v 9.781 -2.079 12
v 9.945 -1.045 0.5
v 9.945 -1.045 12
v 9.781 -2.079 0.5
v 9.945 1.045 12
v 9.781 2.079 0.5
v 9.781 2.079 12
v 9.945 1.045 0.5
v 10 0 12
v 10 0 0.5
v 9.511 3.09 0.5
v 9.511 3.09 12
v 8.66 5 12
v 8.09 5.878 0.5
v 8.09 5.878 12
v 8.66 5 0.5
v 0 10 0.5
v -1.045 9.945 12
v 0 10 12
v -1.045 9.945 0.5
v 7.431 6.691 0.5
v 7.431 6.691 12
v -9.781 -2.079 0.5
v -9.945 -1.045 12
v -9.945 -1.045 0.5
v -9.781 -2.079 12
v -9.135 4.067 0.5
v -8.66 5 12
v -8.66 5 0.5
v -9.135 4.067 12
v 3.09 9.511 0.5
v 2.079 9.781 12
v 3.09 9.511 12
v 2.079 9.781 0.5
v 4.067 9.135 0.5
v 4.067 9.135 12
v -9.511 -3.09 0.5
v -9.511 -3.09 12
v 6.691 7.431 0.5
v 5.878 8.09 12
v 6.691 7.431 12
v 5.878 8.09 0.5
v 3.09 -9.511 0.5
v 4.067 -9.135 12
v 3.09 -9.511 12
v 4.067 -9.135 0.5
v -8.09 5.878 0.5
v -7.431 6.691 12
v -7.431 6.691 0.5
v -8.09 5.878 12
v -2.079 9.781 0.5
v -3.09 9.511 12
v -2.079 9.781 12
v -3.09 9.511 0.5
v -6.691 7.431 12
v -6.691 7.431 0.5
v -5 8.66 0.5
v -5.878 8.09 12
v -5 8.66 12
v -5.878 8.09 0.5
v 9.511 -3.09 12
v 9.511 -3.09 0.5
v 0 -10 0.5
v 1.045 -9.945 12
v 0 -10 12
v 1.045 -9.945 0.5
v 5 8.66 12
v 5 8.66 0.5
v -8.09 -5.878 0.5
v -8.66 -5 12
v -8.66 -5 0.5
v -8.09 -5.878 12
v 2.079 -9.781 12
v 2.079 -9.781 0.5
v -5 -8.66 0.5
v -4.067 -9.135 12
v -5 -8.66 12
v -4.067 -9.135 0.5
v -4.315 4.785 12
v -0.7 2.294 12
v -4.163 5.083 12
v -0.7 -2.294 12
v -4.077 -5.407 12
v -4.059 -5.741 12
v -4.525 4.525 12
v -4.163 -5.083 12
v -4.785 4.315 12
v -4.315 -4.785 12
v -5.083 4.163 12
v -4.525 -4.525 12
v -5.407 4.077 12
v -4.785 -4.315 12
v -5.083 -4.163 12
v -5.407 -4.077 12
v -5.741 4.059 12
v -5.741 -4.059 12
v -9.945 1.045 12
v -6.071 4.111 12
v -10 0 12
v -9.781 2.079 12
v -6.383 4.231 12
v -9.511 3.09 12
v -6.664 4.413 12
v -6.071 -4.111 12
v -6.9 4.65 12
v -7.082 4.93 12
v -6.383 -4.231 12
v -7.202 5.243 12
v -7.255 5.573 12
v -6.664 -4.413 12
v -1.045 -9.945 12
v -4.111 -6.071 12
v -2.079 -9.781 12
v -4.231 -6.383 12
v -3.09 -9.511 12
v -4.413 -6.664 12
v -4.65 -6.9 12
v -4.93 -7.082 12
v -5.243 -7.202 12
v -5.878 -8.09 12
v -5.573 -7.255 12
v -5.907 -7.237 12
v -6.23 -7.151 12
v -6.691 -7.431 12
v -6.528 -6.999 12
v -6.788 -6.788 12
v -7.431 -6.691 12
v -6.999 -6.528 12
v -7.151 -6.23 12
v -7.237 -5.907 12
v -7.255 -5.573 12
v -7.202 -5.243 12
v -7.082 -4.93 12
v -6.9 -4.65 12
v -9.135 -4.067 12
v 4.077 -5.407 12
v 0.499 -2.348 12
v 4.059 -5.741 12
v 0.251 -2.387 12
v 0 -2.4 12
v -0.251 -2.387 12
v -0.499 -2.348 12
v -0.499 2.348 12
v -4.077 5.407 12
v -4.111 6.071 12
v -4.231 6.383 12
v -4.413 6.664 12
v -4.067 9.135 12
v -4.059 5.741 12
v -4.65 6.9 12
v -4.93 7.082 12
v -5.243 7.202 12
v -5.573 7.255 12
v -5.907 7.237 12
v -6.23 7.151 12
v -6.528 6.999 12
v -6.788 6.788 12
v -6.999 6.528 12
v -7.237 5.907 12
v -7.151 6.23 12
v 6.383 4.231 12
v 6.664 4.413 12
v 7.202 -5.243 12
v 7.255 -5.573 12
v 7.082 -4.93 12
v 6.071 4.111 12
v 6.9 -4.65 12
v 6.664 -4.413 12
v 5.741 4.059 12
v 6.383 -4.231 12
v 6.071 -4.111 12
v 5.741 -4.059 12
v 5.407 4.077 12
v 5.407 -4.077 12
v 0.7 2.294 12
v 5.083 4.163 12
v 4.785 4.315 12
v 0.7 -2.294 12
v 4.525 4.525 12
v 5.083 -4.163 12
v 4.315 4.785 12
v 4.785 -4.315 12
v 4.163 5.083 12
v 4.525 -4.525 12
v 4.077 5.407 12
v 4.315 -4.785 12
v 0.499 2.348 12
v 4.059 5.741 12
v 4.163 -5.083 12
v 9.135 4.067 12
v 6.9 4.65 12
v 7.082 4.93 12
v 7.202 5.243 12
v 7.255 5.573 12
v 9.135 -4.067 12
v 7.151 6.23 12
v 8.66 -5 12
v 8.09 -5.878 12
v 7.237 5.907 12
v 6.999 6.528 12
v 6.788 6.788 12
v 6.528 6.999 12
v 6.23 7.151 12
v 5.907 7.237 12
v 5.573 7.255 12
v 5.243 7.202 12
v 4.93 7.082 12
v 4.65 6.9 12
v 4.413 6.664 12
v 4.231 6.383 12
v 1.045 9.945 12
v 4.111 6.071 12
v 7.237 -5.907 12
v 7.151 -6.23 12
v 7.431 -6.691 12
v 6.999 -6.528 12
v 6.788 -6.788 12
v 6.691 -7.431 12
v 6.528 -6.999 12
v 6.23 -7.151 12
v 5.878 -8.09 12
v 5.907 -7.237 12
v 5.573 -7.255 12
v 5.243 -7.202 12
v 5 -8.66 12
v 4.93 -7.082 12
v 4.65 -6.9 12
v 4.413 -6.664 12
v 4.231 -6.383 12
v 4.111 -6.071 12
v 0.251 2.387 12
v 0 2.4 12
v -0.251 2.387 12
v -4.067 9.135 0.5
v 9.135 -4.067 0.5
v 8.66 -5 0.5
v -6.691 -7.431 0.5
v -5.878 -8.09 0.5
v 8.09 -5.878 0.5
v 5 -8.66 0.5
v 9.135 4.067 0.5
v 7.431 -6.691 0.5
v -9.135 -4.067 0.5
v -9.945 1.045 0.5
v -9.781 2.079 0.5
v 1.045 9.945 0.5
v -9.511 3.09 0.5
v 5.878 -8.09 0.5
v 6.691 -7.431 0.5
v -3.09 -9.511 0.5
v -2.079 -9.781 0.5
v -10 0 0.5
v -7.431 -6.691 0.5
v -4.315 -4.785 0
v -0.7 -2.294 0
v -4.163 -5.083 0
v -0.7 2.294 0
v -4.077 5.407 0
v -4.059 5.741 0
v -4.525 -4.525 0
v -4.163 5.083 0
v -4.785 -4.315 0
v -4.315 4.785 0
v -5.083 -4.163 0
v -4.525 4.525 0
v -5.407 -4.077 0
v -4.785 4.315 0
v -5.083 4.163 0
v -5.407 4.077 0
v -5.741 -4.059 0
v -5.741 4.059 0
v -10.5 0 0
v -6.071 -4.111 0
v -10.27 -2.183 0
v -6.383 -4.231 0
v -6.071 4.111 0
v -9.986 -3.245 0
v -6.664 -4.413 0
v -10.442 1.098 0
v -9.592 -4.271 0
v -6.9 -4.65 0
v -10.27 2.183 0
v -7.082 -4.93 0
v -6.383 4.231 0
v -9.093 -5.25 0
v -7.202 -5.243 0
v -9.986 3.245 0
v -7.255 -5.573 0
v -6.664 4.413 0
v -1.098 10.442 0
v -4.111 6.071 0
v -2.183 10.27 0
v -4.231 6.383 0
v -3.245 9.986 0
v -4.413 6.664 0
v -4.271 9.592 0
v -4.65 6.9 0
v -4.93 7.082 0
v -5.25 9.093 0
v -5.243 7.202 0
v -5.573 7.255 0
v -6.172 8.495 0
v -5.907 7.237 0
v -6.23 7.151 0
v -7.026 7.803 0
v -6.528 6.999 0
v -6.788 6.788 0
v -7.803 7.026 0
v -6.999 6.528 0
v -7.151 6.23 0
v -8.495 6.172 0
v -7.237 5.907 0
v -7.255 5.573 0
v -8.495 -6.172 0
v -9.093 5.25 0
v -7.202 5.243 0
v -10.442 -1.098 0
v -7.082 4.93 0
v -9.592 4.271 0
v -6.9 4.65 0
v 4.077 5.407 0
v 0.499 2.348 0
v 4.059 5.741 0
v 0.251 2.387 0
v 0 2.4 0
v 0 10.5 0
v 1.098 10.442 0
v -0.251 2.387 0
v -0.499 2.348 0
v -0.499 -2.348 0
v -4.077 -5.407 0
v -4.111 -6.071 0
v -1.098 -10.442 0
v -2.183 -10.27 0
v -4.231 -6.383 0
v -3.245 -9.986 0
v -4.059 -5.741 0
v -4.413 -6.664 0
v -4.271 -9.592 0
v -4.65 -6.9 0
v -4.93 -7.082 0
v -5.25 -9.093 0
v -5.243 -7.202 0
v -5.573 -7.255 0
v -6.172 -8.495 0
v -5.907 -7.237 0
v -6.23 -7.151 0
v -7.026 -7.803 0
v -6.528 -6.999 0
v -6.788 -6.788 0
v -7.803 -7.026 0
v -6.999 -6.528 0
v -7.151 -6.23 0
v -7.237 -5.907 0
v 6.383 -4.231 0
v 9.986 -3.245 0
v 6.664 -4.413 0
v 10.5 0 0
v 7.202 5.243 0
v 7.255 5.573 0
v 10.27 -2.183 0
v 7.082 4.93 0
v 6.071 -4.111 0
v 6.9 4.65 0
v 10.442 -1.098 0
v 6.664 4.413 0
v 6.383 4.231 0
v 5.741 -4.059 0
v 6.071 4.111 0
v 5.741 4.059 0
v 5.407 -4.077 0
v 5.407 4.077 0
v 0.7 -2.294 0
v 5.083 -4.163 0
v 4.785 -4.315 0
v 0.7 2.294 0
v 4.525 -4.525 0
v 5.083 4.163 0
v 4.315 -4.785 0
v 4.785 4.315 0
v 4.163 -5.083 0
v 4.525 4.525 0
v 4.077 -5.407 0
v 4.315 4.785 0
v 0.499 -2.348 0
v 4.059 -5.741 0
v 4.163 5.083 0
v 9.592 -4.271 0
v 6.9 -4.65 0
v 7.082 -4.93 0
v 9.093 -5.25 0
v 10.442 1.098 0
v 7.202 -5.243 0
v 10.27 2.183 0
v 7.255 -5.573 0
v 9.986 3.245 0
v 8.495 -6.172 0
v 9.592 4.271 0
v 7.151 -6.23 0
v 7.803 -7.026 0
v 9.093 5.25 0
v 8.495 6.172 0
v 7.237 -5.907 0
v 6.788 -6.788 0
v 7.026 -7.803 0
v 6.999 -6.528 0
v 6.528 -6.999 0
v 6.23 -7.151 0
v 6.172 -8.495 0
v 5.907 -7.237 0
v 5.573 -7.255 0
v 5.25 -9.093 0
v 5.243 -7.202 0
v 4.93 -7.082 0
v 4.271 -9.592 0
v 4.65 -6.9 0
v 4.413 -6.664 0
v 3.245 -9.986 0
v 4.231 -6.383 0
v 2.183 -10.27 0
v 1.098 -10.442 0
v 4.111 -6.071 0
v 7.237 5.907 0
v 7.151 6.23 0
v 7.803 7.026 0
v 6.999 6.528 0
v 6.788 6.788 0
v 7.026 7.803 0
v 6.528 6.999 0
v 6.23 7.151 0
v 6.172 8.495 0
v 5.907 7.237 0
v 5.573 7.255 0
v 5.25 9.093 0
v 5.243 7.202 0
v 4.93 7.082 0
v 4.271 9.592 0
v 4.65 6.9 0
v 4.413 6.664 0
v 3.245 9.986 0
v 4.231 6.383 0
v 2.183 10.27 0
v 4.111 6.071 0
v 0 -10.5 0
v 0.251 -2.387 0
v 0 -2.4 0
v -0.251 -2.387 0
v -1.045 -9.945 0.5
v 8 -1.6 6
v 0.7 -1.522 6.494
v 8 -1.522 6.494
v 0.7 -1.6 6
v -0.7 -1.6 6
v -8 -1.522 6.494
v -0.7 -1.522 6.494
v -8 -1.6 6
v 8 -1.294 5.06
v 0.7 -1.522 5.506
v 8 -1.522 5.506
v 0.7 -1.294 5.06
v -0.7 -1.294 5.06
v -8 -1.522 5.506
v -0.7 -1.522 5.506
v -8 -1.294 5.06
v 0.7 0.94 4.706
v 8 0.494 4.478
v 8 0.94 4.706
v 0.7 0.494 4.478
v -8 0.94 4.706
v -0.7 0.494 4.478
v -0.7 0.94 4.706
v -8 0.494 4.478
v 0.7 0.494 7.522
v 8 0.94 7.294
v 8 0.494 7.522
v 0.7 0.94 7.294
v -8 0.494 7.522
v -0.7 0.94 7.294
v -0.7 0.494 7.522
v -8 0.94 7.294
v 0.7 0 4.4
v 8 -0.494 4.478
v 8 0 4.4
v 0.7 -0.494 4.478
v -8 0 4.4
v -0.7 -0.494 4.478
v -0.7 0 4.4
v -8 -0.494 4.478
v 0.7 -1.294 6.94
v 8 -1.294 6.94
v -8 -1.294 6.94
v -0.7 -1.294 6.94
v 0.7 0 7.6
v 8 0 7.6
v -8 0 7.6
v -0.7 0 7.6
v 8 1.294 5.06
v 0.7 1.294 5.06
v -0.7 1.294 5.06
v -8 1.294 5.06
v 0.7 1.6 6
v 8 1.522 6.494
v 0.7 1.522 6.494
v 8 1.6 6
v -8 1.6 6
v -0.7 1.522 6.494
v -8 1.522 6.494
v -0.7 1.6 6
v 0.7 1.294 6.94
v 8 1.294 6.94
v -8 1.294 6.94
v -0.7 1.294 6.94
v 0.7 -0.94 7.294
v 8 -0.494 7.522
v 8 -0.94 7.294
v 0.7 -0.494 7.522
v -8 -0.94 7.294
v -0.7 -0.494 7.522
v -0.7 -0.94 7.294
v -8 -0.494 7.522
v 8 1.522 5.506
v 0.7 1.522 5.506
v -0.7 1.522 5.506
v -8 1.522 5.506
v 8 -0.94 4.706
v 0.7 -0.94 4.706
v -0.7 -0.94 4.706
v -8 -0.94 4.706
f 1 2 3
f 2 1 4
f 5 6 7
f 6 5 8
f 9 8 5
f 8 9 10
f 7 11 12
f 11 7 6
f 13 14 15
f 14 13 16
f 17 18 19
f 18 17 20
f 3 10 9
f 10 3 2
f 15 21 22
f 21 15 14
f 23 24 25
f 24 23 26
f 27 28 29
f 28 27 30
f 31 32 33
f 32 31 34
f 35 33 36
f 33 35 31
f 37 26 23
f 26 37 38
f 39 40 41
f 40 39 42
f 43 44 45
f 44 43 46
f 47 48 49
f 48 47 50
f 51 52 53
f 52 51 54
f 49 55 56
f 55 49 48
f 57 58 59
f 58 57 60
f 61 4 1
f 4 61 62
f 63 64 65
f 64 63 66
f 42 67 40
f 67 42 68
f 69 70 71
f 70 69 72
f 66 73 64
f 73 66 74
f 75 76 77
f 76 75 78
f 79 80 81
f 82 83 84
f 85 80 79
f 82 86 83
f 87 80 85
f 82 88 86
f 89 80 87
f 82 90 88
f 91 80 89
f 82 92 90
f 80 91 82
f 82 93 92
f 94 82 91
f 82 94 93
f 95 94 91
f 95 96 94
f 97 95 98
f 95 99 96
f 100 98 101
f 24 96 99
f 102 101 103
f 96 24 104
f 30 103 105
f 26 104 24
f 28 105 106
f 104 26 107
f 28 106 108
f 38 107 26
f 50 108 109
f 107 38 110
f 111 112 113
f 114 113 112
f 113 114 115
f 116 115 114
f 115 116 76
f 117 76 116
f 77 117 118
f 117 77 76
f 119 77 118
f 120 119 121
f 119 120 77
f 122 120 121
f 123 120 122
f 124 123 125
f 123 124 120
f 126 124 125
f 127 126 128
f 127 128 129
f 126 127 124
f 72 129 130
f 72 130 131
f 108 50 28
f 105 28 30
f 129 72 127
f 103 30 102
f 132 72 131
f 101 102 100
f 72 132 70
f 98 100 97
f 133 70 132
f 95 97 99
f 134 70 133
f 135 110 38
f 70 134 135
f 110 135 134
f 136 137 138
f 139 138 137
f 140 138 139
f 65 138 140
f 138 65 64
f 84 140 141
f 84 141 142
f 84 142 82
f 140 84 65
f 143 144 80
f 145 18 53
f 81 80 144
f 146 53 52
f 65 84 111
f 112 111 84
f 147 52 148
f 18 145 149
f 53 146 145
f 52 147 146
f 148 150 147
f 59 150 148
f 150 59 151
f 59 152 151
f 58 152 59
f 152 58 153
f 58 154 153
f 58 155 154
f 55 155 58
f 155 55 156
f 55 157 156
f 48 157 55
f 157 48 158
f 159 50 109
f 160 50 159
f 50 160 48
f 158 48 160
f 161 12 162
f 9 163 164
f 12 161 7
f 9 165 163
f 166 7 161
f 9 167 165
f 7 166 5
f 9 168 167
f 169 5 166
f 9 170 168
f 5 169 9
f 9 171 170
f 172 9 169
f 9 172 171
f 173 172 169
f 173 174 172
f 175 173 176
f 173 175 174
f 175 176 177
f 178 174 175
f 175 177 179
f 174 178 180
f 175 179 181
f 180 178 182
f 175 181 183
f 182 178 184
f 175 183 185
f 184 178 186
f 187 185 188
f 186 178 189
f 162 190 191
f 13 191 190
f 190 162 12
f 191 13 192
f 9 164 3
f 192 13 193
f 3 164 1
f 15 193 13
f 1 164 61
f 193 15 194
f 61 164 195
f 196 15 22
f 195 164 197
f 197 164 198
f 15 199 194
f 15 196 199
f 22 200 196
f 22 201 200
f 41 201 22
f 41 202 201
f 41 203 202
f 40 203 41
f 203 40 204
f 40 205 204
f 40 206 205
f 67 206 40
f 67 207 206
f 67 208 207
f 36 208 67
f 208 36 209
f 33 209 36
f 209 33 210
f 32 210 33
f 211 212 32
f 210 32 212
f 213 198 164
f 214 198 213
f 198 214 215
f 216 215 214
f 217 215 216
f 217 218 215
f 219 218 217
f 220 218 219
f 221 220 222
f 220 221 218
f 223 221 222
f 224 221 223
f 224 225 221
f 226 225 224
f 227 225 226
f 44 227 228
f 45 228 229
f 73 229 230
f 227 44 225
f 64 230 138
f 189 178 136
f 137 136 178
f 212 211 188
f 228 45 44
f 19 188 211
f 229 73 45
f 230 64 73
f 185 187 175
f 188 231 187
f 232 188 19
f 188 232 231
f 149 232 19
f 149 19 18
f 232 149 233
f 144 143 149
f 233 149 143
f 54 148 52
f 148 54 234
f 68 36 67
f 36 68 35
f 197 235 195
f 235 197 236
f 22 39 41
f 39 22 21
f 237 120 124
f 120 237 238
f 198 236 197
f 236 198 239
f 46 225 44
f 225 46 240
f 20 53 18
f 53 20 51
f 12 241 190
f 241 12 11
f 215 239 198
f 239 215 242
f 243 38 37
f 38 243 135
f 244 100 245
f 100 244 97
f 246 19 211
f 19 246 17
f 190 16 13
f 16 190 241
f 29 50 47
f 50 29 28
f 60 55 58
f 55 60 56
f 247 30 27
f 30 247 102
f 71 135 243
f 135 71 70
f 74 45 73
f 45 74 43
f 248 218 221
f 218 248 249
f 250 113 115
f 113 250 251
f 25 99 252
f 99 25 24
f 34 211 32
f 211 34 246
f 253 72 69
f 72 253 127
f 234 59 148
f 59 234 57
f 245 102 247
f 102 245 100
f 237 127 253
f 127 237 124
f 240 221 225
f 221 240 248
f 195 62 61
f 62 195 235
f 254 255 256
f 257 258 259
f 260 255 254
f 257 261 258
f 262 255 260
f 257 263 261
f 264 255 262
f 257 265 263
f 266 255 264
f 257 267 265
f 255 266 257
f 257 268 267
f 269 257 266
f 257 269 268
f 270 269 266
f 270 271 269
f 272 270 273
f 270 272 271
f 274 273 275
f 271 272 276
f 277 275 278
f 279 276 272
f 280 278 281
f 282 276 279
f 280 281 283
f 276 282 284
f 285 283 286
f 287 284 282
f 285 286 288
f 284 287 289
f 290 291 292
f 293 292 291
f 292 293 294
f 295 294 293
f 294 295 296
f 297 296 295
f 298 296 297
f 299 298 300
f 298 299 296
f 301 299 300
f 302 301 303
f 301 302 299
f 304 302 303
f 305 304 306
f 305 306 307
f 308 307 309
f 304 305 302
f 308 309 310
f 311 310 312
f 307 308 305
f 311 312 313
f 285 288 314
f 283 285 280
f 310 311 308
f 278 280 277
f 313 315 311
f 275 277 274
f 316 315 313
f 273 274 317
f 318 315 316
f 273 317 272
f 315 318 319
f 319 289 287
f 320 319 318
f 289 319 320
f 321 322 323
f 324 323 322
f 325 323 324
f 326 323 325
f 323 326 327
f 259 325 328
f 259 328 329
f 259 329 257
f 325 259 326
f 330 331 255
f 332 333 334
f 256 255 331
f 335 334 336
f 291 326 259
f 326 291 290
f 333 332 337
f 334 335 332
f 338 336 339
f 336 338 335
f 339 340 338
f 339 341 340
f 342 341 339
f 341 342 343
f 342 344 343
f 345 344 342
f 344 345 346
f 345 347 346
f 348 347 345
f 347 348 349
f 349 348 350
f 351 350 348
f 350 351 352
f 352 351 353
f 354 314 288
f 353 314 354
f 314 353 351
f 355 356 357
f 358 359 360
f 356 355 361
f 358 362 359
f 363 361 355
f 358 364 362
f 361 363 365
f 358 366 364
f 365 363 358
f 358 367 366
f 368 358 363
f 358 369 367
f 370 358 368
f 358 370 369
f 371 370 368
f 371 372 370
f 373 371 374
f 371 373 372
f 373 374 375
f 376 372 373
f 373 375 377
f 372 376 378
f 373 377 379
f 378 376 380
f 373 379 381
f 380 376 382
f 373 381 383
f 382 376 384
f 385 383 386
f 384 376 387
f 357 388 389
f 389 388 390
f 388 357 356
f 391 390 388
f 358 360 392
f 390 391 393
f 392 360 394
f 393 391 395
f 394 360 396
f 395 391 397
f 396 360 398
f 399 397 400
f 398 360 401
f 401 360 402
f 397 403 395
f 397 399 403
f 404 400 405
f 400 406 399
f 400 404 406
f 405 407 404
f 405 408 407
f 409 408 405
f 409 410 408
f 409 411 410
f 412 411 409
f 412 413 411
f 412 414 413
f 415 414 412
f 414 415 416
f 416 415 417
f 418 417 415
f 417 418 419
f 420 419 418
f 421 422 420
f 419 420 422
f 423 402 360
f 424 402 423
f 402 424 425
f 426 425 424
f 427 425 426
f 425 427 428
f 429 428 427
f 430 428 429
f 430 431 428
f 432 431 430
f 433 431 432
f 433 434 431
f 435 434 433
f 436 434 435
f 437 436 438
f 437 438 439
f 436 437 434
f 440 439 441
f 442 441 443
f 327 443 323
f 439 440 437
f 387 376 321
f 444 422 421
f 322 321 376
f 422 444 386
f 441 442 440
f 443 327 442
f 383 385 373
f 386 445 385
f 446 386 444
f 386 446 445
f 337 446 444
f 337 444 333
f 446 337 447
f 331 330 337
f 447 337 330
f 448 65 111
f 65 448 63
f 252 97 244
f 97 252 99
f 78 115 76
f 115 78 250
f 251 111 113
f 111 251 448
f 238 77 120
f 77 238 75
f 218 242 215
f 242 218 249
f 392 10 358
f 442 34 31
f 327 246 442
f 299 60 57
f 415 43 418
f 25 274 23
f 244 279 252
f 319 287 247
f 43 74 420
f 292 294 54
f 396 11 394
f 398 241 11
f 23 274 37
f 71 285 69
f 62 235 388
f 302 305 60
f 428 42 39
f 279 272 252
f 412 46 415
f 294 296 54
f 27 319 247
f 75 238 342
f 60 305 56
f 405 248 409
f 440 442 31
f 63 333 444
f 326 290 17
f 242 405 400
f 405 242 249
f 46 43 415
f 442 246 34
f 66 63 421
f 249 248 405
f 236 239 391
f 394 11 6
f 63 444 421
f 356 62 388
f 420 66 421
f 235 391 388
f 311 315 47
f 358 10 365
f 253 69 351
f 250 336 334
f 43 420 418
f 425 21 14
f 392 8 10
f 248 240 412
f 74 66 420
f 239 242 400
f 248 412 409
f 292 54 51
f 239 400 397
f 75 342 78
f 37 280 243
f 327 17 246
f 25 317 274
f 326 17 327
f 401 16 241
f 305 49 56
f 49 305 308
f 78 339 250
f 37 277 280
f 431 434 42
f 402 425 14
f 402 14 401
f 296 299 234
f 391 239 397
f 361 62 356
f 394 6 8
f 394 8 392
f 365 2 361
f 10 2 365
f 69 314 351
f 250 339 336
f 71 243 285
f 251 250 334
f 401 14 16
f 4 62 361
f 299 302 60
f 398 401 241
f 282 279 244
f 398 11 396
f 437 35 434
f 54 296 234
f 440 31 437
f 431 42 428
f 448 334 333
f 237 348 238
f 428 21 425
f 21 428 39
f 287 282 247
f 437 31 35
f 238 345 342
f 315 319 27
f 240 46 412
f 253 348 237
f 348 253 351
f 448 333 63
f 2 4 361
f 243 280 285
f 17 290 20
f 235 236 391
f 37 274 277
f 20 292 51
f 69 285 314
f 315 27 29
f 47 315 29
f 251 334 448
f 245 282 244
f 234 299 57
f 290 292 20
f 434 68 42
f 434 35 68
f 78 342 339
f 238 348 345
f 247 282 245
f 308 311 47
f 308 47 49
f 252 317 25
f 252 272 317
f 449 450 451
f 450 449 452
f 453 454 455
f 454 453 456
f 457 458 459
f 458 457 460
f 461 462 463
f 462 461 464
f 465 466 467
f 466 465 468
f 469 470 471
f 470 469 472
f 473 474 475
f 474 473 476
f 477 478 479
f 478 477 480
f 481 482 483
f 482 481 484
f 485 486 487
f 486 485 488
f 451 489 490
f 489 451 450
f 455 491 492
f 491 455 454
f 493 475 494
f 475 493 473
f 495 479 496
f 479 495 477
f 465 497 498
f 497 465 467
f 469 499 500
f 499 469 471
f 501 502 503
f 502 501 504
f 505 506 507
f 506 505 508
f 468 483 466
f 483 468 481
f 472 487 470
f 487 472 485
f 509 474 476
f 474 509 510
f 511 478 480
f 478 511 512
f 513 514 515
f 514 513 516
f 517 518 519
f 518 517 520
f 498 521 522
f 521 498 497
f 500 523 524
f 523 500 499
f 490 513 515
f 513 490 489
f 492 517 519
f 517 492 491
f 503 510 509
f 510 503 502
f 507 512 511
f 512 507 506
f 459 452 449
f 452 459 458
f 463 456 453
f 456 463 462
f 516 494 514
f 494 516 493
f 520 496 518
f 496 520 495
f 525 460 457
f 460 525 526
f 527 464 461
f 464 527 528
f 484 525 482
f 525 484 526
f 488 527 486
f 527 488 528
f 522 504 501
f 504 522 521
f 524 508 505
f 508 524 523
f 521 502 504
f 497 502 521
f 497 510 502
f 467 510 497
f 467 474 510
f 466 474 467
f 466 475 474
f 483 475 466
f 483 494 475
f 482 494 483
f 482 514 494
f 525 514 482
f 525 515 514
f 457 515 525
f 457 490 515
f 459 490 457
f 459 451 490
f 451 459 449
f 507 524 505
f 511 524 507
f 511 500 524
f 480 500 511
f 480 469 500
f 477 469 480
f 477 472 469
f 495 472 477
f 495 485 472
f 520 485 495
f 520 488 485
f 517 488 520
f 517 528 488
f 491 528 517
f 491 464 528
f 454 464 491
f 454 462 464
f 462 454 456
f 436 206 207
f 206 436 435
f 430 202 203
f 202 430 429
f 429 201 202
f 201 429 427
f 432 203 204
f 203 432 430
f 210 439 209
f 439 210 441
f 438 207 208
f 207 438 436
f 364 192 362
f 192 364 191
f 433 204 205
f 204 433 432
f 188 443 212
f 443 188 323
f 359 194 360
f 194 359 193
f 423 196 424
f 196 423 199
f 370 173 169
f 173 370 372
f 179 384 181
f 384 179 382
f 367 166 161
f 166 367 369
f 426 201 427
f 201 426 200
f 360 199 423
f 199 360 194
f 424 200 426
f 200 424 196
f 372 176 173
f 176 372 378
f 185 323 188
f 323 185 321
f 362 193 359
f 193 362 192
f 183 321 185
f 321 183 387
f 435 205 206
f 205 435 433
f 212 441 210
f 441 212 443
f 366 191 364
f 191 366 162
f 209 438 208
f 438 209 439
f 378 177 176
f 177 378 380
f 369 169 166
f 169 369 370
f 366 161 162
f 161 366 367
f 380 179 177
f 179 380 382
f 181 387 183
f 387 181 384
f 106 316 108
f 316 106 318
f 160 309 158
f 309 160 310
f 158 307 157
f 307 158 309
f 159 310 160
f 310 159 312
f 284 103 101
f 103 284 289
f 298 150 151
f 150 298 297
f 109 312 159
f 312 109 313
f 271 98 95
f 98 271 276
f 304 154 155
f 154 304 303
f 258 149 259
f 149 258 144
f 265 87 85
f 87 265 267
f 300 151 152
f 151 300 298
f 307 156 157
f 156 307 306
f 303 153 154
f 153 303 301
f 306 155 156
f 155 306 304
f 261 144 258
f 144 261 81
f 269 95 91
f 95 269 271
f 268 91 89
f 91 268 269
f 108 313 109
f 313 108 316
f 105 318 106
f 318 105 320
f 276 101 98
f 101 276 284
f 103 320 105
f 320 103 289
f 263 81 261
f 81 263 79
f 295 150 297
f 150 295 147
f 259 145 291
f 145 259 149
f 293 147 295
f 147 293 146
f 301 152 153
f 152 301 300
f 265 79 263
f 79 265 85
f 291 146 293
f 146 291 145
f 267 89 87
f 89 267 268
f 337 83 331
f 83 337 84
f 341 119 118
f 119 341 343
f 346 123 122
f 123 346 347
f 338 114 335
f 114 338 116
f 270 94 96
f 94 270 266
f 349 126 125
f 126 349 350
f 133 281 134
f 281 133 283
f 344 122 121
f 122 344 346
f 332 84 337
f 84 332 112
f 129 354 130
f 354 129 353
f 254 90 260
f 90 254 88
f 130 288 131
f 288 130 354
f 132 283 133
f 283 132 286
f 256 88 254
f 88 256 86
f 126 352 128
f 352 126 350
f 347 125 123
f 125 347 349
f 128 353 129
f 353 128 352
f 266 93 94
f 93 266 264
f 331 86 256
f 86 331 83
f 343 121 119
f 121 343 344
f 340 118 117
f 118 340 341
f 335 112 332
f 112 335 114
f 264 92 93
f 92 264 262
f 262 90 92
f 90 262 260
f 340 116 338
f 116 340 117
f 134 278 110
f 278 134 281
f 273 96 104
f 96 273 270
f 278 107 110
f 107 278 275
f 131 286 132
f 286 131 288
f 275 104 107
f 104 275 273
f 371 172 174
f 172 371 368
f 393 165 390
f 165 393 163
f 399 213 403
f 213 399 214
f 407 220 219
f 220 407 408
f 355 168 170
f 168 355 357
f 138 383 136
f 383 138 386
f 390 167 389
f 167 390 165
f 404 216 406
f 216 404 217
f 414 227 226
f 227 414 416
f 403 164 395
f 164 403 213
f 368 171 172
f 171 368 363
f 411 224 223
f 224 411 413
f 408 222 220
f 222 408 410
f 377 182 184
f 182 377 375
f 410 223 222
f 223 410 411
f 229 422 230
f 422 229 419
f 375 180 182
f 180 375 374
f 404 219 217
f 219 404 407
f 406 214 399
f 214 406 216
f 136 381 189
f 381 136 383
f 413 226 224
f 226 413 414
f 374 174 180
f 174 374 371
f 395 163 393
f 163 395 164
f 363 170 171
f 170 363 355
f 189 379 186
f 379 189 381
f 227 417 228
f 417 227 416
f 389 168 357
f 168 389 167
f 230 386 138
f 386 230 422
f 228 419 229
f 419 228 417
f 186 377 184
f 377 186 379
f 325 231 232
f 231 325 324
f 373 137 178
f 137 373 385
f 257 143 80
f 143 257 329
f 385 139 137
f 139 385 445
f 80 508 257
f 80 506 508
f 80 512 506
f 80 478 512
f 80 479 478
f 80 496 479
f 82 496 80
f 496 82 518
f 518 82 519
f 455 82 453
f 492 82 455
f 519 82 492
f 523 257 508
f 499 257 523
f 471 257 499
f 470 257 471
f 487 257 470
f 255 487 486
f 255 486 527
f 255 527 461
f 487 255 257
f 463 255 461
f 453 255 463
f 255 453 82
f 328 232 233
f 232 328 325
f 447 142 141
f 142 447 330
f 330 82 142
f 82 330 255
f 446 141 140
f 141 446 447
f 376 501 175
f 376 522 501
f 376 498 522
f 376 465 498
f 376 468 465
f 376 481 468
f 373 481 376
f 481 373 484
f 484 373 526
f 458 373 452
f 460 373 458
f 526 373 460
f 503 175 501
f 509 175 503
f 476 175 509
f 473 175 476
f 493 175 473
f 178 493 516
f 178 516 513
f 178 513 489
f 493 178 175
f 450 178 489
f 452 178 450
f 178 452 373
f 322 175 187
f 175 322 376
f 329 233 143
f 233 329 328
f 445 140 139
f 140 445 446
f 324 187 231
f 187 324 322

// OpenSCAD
/*
   Coupling Hub for NEMA 17 to Spool Connection

   This hub connects the NEMA 17 motor shaft (5mm D-shaft) to the
   laser-cut spool. It's designed to be 3D printed in PLA or PETG.

   Features:
   - 5mm D-shaft center hole (matches NEMA 17 shaft)
   - 2x M3 grub screws on flats for secure clamping
   - 4x M3 mounting holes to bolt to spool
   - Designed to print without supports
*/

// ===== PARAMETERS =====

// Hub dimensions
hub_outer_diameter = 20;      // Outer diameter of hub
hub_height = 12;               // Total height of hub
hub_center_rim_dia = 8;       // Raised center rim around shaft

// Motor shaft (NEMA 17: 5mm D-shaft)
motor_shaft_diameter = 5.0;   // Motor shaft diameter
motor_shaft_flat_depth = 0.5; // Depth of D-flat on shaft
shaft_hole_clearance = 0.1;   // Clearance for shaft fit (tight fit)

// Grub screws (M3 set screws)
grub_screw_diameter = 3.0;    // M3 grub screw
grub_screw_hole_dia = 3.2;    // Clearance for M3 screw
grub_screw_depth = 8;         // How deep grub screw goes
grub_screw_position = 6;      // Height from bottom for grub screw
grub_screw_angle_offset = 0;  // Angle offset (0 = on flats)

// Mounting holes (to attach to spool)
mounting_hole_diameter = 3.2;  // M3 clearance hole
mounting_hole_count = 4;       // 4 holes for symmetry
mounting_hole_circle_dia = 16; // Diameter of hole circle
mounting_hole_countersink = false; // Countersink holes?
countersink_diameter = 6;      // Countersink diameter
countersink_depth = 2;         // Countersink depth

// Print settings
layer_height = 0.2;            // For chamfer calculations
$fn = 60;                      // Circle resolution

// ===== HELPER MODULES =====

// 5mm D-shaft profile (matches NEMA 17)
// This is the hole that the motor shaft fits into
module motor_shaft_profile_2d() {
    shaft_radius = motor_shaft_diameter / 2 - shaft_hole_clearance;
    flat_distance = shaft_radius - motor_shaft_flat_depth;

    difference() {
        // Main circular hole
        circle(r=shaft_radius);

        // Cut flats on two sides (D-shaft profile)
        // Flats are 180° apart for D-shaft
        for (angle = [0, 180]) {
            rotate([0, 0, angle]) {
                translate([flat_distance, 0, 0]) {
                    square([shaft_radius, shaft_radius * 3], center=true);
                }
            }
        }
    }
}

// Grub screw hole (positioned to bite into flat)
module grub_screw_hole() {
    rotate([0, 90, 0]) {
        cylinder(d=grub_screw_hole_dia, h=grub_screw_depth, $fn=20);
    }
}

// Mounting hole with optional countersink
module mounting_hole() {
    translate([0, 0, -0.01]) {
        cylinder(d=mounting_hole_diameter, h=hub_height + 0.02, $fn=30);

        if (mounting_hole_countersink) {
            translate([0, 0, hub_height - countersink_depth]) {
                cylinder(d1=mounting_hole_diameter,
                        d2=countersink_diameter,
                        h=countersink_depth + 0.01,
                        $fn=30);
            }
        }
    }
}

// ===== MAIN HUB =====

module coupling_hub() {
    difference() {
        // Solid hub body
        union() {
            // Main hub cylinder
            cylinder(d=hub_outer_diameter, h=hub_height);

            // Raised center rim (for extra strength around shaft)
            translate([0, 0, 0]) {
                cylinder(d=hub_center_rim_dia, h=hub_height);
            }

            // Bottom chamfer (makes it easier to print, looks nice)
            translate([0, 0, 0]) {
                cylinder(d1=hub_outer_diameter + 1, d2=hub_outer_diameter, h=0.5);
            }
        }

        // Cut out center shaft hole (5mm D-shaft)
        translate([0, 0, -0.01]) {
            linear_extrude(height=hub_height + 0.02) {
                motor_shaft_profile_2d();
            }
        }

        // Grub screw holes (2 screws, 180° apart, on the flats)
        for (i = [0, 1]) {
            rotate([0, 0, i * 180 + grub_screw_angle_offset]) {
                translate([0, 0, grub_screw_position]) {
                    grub_screw_hole();
                }
            }
        }

        // Mounting holes to spool (4 holes, evenly spaced)
        for (i = [0 : mounting_hole_count - 1]) {
            rotate([0, 0, i * 360 / mounting_hole_count + 45]) {
                translate([mounting_hole_circle_dia / 2, 0, 0]) {
                    mounting_hole();
                }
            }
        }
    }
}

// ===== VISUALIZATION HELPERS =====

// Show motor shaft for reference
module show_motor_shaft() {
    color("silver", 0.5) {
        translate([0, 0, -30]) {
            difference() {
                cylinder(d=motor_shaft_diameter, h=50, $fn=40);

                // Cut flats (same as hole, but actual shaft)
                for (angle = [0, 180]) {
                    rotate([0, 0, angle]) {
                        translate([motor_shaft_diameter/2 - motor_shaft_flat_depth, 0, -1]) {
                            cube([motor_shaft_diameter, motor_shaft_diameter, 52]);
                        }
                    }
                }
            }
        }
    }
}

// Show grub screws for reference
module show_grub_screws() {
    color("gray", 0.7) {
        for (i = [0, 1]) {
            rotate([0, 0, i * 180 + grub_screw_angle_offset]) {
                translate([hub_outer_diameter/2, 0, grub_screw_position]) {
                    rotate([0, 90, 0]) {
                        cylinder(d=3, h=6, $fn=20);
                    }
                }
            }
        }
    }
}

// Show mounting bolts for reference
module show_mounting_bolts() {
    color("gray", 0.7) {
        for (i = [0 : mounting_hole_count - 1]) {
            rotate([0, 0, i * 360 / mounting_hole_count + 45]) {
                translate([mounting_hole_circle_dia / 2, 0, -5]) {
                    cylinder(d=3, h=hub_height + 10, $fn=20);
                }
            }
        }
    }
}

// ===== RENDER OPTIONS =====

// Render mode
show_motor_shaft_reference = true;   // Show motor shaft for visualization
show_grub_screws_reference = true;   // Show grub screws
show_mounting_bolts_reference = false; // Show mounting bolts
print_orientation = true;             // Orient for 3D printing

// Main render
if (print_orientation) {
    // Print orientation (flat on bed, no supports needed!)
    coupling_hub();
} else {
    // Assembly orientation (for visualization)
    rotate([180, 0, 0]) {
        coupling_hub();

        if (show_motor_shaft_reference) {
            show_motor_shaft();
        }
        if (show_grub_screws_reference) {
            show_grub_screws();
        }
        if (show_mounting_bolts_reference) {
            show_mounting_bolts();
        }
    }
}

// ===== NOTES FOR PRINTING =====

/*
PRINT SETTINGS:
- Material: PLA or PETG (PETG stronger)
- Layer height: 0.2mm
- Infill: 100% (this part needs to be SOLID)
- Perimeters: 4+
- No supports needed!
- Print orientation: Flat on bed (top of hub facing up)

ASSEMBLY:
1. Press hub onto motor shaft (should be snug but not impossible)
2. Rotate hub so grub screws align with flats
3. Tighten both M3 grub screws (alternate tightening)
4. Use 4× M3 bolts (10mm length) to attach hub to spool
5. Apply threadlocker to grub screws (recommended)

TESTING:
- Hub should NOT slip on shaft even with high torque
- If it slips, tighten grub screws more or reduce shaft_hole_clearance
- If hub won't fit on shaft, increase shaft_hole_clearance by 0.05mm

TROUBLESHOOTING:
- Won't fit on shaft: Increase shaft_hole_clearance
- Slips on shaft: Decrease shaft_hole_clearance or add roughness to shaft
- Grub screws strip: Pre-tap M3 threads, use steel grub screws
*/
